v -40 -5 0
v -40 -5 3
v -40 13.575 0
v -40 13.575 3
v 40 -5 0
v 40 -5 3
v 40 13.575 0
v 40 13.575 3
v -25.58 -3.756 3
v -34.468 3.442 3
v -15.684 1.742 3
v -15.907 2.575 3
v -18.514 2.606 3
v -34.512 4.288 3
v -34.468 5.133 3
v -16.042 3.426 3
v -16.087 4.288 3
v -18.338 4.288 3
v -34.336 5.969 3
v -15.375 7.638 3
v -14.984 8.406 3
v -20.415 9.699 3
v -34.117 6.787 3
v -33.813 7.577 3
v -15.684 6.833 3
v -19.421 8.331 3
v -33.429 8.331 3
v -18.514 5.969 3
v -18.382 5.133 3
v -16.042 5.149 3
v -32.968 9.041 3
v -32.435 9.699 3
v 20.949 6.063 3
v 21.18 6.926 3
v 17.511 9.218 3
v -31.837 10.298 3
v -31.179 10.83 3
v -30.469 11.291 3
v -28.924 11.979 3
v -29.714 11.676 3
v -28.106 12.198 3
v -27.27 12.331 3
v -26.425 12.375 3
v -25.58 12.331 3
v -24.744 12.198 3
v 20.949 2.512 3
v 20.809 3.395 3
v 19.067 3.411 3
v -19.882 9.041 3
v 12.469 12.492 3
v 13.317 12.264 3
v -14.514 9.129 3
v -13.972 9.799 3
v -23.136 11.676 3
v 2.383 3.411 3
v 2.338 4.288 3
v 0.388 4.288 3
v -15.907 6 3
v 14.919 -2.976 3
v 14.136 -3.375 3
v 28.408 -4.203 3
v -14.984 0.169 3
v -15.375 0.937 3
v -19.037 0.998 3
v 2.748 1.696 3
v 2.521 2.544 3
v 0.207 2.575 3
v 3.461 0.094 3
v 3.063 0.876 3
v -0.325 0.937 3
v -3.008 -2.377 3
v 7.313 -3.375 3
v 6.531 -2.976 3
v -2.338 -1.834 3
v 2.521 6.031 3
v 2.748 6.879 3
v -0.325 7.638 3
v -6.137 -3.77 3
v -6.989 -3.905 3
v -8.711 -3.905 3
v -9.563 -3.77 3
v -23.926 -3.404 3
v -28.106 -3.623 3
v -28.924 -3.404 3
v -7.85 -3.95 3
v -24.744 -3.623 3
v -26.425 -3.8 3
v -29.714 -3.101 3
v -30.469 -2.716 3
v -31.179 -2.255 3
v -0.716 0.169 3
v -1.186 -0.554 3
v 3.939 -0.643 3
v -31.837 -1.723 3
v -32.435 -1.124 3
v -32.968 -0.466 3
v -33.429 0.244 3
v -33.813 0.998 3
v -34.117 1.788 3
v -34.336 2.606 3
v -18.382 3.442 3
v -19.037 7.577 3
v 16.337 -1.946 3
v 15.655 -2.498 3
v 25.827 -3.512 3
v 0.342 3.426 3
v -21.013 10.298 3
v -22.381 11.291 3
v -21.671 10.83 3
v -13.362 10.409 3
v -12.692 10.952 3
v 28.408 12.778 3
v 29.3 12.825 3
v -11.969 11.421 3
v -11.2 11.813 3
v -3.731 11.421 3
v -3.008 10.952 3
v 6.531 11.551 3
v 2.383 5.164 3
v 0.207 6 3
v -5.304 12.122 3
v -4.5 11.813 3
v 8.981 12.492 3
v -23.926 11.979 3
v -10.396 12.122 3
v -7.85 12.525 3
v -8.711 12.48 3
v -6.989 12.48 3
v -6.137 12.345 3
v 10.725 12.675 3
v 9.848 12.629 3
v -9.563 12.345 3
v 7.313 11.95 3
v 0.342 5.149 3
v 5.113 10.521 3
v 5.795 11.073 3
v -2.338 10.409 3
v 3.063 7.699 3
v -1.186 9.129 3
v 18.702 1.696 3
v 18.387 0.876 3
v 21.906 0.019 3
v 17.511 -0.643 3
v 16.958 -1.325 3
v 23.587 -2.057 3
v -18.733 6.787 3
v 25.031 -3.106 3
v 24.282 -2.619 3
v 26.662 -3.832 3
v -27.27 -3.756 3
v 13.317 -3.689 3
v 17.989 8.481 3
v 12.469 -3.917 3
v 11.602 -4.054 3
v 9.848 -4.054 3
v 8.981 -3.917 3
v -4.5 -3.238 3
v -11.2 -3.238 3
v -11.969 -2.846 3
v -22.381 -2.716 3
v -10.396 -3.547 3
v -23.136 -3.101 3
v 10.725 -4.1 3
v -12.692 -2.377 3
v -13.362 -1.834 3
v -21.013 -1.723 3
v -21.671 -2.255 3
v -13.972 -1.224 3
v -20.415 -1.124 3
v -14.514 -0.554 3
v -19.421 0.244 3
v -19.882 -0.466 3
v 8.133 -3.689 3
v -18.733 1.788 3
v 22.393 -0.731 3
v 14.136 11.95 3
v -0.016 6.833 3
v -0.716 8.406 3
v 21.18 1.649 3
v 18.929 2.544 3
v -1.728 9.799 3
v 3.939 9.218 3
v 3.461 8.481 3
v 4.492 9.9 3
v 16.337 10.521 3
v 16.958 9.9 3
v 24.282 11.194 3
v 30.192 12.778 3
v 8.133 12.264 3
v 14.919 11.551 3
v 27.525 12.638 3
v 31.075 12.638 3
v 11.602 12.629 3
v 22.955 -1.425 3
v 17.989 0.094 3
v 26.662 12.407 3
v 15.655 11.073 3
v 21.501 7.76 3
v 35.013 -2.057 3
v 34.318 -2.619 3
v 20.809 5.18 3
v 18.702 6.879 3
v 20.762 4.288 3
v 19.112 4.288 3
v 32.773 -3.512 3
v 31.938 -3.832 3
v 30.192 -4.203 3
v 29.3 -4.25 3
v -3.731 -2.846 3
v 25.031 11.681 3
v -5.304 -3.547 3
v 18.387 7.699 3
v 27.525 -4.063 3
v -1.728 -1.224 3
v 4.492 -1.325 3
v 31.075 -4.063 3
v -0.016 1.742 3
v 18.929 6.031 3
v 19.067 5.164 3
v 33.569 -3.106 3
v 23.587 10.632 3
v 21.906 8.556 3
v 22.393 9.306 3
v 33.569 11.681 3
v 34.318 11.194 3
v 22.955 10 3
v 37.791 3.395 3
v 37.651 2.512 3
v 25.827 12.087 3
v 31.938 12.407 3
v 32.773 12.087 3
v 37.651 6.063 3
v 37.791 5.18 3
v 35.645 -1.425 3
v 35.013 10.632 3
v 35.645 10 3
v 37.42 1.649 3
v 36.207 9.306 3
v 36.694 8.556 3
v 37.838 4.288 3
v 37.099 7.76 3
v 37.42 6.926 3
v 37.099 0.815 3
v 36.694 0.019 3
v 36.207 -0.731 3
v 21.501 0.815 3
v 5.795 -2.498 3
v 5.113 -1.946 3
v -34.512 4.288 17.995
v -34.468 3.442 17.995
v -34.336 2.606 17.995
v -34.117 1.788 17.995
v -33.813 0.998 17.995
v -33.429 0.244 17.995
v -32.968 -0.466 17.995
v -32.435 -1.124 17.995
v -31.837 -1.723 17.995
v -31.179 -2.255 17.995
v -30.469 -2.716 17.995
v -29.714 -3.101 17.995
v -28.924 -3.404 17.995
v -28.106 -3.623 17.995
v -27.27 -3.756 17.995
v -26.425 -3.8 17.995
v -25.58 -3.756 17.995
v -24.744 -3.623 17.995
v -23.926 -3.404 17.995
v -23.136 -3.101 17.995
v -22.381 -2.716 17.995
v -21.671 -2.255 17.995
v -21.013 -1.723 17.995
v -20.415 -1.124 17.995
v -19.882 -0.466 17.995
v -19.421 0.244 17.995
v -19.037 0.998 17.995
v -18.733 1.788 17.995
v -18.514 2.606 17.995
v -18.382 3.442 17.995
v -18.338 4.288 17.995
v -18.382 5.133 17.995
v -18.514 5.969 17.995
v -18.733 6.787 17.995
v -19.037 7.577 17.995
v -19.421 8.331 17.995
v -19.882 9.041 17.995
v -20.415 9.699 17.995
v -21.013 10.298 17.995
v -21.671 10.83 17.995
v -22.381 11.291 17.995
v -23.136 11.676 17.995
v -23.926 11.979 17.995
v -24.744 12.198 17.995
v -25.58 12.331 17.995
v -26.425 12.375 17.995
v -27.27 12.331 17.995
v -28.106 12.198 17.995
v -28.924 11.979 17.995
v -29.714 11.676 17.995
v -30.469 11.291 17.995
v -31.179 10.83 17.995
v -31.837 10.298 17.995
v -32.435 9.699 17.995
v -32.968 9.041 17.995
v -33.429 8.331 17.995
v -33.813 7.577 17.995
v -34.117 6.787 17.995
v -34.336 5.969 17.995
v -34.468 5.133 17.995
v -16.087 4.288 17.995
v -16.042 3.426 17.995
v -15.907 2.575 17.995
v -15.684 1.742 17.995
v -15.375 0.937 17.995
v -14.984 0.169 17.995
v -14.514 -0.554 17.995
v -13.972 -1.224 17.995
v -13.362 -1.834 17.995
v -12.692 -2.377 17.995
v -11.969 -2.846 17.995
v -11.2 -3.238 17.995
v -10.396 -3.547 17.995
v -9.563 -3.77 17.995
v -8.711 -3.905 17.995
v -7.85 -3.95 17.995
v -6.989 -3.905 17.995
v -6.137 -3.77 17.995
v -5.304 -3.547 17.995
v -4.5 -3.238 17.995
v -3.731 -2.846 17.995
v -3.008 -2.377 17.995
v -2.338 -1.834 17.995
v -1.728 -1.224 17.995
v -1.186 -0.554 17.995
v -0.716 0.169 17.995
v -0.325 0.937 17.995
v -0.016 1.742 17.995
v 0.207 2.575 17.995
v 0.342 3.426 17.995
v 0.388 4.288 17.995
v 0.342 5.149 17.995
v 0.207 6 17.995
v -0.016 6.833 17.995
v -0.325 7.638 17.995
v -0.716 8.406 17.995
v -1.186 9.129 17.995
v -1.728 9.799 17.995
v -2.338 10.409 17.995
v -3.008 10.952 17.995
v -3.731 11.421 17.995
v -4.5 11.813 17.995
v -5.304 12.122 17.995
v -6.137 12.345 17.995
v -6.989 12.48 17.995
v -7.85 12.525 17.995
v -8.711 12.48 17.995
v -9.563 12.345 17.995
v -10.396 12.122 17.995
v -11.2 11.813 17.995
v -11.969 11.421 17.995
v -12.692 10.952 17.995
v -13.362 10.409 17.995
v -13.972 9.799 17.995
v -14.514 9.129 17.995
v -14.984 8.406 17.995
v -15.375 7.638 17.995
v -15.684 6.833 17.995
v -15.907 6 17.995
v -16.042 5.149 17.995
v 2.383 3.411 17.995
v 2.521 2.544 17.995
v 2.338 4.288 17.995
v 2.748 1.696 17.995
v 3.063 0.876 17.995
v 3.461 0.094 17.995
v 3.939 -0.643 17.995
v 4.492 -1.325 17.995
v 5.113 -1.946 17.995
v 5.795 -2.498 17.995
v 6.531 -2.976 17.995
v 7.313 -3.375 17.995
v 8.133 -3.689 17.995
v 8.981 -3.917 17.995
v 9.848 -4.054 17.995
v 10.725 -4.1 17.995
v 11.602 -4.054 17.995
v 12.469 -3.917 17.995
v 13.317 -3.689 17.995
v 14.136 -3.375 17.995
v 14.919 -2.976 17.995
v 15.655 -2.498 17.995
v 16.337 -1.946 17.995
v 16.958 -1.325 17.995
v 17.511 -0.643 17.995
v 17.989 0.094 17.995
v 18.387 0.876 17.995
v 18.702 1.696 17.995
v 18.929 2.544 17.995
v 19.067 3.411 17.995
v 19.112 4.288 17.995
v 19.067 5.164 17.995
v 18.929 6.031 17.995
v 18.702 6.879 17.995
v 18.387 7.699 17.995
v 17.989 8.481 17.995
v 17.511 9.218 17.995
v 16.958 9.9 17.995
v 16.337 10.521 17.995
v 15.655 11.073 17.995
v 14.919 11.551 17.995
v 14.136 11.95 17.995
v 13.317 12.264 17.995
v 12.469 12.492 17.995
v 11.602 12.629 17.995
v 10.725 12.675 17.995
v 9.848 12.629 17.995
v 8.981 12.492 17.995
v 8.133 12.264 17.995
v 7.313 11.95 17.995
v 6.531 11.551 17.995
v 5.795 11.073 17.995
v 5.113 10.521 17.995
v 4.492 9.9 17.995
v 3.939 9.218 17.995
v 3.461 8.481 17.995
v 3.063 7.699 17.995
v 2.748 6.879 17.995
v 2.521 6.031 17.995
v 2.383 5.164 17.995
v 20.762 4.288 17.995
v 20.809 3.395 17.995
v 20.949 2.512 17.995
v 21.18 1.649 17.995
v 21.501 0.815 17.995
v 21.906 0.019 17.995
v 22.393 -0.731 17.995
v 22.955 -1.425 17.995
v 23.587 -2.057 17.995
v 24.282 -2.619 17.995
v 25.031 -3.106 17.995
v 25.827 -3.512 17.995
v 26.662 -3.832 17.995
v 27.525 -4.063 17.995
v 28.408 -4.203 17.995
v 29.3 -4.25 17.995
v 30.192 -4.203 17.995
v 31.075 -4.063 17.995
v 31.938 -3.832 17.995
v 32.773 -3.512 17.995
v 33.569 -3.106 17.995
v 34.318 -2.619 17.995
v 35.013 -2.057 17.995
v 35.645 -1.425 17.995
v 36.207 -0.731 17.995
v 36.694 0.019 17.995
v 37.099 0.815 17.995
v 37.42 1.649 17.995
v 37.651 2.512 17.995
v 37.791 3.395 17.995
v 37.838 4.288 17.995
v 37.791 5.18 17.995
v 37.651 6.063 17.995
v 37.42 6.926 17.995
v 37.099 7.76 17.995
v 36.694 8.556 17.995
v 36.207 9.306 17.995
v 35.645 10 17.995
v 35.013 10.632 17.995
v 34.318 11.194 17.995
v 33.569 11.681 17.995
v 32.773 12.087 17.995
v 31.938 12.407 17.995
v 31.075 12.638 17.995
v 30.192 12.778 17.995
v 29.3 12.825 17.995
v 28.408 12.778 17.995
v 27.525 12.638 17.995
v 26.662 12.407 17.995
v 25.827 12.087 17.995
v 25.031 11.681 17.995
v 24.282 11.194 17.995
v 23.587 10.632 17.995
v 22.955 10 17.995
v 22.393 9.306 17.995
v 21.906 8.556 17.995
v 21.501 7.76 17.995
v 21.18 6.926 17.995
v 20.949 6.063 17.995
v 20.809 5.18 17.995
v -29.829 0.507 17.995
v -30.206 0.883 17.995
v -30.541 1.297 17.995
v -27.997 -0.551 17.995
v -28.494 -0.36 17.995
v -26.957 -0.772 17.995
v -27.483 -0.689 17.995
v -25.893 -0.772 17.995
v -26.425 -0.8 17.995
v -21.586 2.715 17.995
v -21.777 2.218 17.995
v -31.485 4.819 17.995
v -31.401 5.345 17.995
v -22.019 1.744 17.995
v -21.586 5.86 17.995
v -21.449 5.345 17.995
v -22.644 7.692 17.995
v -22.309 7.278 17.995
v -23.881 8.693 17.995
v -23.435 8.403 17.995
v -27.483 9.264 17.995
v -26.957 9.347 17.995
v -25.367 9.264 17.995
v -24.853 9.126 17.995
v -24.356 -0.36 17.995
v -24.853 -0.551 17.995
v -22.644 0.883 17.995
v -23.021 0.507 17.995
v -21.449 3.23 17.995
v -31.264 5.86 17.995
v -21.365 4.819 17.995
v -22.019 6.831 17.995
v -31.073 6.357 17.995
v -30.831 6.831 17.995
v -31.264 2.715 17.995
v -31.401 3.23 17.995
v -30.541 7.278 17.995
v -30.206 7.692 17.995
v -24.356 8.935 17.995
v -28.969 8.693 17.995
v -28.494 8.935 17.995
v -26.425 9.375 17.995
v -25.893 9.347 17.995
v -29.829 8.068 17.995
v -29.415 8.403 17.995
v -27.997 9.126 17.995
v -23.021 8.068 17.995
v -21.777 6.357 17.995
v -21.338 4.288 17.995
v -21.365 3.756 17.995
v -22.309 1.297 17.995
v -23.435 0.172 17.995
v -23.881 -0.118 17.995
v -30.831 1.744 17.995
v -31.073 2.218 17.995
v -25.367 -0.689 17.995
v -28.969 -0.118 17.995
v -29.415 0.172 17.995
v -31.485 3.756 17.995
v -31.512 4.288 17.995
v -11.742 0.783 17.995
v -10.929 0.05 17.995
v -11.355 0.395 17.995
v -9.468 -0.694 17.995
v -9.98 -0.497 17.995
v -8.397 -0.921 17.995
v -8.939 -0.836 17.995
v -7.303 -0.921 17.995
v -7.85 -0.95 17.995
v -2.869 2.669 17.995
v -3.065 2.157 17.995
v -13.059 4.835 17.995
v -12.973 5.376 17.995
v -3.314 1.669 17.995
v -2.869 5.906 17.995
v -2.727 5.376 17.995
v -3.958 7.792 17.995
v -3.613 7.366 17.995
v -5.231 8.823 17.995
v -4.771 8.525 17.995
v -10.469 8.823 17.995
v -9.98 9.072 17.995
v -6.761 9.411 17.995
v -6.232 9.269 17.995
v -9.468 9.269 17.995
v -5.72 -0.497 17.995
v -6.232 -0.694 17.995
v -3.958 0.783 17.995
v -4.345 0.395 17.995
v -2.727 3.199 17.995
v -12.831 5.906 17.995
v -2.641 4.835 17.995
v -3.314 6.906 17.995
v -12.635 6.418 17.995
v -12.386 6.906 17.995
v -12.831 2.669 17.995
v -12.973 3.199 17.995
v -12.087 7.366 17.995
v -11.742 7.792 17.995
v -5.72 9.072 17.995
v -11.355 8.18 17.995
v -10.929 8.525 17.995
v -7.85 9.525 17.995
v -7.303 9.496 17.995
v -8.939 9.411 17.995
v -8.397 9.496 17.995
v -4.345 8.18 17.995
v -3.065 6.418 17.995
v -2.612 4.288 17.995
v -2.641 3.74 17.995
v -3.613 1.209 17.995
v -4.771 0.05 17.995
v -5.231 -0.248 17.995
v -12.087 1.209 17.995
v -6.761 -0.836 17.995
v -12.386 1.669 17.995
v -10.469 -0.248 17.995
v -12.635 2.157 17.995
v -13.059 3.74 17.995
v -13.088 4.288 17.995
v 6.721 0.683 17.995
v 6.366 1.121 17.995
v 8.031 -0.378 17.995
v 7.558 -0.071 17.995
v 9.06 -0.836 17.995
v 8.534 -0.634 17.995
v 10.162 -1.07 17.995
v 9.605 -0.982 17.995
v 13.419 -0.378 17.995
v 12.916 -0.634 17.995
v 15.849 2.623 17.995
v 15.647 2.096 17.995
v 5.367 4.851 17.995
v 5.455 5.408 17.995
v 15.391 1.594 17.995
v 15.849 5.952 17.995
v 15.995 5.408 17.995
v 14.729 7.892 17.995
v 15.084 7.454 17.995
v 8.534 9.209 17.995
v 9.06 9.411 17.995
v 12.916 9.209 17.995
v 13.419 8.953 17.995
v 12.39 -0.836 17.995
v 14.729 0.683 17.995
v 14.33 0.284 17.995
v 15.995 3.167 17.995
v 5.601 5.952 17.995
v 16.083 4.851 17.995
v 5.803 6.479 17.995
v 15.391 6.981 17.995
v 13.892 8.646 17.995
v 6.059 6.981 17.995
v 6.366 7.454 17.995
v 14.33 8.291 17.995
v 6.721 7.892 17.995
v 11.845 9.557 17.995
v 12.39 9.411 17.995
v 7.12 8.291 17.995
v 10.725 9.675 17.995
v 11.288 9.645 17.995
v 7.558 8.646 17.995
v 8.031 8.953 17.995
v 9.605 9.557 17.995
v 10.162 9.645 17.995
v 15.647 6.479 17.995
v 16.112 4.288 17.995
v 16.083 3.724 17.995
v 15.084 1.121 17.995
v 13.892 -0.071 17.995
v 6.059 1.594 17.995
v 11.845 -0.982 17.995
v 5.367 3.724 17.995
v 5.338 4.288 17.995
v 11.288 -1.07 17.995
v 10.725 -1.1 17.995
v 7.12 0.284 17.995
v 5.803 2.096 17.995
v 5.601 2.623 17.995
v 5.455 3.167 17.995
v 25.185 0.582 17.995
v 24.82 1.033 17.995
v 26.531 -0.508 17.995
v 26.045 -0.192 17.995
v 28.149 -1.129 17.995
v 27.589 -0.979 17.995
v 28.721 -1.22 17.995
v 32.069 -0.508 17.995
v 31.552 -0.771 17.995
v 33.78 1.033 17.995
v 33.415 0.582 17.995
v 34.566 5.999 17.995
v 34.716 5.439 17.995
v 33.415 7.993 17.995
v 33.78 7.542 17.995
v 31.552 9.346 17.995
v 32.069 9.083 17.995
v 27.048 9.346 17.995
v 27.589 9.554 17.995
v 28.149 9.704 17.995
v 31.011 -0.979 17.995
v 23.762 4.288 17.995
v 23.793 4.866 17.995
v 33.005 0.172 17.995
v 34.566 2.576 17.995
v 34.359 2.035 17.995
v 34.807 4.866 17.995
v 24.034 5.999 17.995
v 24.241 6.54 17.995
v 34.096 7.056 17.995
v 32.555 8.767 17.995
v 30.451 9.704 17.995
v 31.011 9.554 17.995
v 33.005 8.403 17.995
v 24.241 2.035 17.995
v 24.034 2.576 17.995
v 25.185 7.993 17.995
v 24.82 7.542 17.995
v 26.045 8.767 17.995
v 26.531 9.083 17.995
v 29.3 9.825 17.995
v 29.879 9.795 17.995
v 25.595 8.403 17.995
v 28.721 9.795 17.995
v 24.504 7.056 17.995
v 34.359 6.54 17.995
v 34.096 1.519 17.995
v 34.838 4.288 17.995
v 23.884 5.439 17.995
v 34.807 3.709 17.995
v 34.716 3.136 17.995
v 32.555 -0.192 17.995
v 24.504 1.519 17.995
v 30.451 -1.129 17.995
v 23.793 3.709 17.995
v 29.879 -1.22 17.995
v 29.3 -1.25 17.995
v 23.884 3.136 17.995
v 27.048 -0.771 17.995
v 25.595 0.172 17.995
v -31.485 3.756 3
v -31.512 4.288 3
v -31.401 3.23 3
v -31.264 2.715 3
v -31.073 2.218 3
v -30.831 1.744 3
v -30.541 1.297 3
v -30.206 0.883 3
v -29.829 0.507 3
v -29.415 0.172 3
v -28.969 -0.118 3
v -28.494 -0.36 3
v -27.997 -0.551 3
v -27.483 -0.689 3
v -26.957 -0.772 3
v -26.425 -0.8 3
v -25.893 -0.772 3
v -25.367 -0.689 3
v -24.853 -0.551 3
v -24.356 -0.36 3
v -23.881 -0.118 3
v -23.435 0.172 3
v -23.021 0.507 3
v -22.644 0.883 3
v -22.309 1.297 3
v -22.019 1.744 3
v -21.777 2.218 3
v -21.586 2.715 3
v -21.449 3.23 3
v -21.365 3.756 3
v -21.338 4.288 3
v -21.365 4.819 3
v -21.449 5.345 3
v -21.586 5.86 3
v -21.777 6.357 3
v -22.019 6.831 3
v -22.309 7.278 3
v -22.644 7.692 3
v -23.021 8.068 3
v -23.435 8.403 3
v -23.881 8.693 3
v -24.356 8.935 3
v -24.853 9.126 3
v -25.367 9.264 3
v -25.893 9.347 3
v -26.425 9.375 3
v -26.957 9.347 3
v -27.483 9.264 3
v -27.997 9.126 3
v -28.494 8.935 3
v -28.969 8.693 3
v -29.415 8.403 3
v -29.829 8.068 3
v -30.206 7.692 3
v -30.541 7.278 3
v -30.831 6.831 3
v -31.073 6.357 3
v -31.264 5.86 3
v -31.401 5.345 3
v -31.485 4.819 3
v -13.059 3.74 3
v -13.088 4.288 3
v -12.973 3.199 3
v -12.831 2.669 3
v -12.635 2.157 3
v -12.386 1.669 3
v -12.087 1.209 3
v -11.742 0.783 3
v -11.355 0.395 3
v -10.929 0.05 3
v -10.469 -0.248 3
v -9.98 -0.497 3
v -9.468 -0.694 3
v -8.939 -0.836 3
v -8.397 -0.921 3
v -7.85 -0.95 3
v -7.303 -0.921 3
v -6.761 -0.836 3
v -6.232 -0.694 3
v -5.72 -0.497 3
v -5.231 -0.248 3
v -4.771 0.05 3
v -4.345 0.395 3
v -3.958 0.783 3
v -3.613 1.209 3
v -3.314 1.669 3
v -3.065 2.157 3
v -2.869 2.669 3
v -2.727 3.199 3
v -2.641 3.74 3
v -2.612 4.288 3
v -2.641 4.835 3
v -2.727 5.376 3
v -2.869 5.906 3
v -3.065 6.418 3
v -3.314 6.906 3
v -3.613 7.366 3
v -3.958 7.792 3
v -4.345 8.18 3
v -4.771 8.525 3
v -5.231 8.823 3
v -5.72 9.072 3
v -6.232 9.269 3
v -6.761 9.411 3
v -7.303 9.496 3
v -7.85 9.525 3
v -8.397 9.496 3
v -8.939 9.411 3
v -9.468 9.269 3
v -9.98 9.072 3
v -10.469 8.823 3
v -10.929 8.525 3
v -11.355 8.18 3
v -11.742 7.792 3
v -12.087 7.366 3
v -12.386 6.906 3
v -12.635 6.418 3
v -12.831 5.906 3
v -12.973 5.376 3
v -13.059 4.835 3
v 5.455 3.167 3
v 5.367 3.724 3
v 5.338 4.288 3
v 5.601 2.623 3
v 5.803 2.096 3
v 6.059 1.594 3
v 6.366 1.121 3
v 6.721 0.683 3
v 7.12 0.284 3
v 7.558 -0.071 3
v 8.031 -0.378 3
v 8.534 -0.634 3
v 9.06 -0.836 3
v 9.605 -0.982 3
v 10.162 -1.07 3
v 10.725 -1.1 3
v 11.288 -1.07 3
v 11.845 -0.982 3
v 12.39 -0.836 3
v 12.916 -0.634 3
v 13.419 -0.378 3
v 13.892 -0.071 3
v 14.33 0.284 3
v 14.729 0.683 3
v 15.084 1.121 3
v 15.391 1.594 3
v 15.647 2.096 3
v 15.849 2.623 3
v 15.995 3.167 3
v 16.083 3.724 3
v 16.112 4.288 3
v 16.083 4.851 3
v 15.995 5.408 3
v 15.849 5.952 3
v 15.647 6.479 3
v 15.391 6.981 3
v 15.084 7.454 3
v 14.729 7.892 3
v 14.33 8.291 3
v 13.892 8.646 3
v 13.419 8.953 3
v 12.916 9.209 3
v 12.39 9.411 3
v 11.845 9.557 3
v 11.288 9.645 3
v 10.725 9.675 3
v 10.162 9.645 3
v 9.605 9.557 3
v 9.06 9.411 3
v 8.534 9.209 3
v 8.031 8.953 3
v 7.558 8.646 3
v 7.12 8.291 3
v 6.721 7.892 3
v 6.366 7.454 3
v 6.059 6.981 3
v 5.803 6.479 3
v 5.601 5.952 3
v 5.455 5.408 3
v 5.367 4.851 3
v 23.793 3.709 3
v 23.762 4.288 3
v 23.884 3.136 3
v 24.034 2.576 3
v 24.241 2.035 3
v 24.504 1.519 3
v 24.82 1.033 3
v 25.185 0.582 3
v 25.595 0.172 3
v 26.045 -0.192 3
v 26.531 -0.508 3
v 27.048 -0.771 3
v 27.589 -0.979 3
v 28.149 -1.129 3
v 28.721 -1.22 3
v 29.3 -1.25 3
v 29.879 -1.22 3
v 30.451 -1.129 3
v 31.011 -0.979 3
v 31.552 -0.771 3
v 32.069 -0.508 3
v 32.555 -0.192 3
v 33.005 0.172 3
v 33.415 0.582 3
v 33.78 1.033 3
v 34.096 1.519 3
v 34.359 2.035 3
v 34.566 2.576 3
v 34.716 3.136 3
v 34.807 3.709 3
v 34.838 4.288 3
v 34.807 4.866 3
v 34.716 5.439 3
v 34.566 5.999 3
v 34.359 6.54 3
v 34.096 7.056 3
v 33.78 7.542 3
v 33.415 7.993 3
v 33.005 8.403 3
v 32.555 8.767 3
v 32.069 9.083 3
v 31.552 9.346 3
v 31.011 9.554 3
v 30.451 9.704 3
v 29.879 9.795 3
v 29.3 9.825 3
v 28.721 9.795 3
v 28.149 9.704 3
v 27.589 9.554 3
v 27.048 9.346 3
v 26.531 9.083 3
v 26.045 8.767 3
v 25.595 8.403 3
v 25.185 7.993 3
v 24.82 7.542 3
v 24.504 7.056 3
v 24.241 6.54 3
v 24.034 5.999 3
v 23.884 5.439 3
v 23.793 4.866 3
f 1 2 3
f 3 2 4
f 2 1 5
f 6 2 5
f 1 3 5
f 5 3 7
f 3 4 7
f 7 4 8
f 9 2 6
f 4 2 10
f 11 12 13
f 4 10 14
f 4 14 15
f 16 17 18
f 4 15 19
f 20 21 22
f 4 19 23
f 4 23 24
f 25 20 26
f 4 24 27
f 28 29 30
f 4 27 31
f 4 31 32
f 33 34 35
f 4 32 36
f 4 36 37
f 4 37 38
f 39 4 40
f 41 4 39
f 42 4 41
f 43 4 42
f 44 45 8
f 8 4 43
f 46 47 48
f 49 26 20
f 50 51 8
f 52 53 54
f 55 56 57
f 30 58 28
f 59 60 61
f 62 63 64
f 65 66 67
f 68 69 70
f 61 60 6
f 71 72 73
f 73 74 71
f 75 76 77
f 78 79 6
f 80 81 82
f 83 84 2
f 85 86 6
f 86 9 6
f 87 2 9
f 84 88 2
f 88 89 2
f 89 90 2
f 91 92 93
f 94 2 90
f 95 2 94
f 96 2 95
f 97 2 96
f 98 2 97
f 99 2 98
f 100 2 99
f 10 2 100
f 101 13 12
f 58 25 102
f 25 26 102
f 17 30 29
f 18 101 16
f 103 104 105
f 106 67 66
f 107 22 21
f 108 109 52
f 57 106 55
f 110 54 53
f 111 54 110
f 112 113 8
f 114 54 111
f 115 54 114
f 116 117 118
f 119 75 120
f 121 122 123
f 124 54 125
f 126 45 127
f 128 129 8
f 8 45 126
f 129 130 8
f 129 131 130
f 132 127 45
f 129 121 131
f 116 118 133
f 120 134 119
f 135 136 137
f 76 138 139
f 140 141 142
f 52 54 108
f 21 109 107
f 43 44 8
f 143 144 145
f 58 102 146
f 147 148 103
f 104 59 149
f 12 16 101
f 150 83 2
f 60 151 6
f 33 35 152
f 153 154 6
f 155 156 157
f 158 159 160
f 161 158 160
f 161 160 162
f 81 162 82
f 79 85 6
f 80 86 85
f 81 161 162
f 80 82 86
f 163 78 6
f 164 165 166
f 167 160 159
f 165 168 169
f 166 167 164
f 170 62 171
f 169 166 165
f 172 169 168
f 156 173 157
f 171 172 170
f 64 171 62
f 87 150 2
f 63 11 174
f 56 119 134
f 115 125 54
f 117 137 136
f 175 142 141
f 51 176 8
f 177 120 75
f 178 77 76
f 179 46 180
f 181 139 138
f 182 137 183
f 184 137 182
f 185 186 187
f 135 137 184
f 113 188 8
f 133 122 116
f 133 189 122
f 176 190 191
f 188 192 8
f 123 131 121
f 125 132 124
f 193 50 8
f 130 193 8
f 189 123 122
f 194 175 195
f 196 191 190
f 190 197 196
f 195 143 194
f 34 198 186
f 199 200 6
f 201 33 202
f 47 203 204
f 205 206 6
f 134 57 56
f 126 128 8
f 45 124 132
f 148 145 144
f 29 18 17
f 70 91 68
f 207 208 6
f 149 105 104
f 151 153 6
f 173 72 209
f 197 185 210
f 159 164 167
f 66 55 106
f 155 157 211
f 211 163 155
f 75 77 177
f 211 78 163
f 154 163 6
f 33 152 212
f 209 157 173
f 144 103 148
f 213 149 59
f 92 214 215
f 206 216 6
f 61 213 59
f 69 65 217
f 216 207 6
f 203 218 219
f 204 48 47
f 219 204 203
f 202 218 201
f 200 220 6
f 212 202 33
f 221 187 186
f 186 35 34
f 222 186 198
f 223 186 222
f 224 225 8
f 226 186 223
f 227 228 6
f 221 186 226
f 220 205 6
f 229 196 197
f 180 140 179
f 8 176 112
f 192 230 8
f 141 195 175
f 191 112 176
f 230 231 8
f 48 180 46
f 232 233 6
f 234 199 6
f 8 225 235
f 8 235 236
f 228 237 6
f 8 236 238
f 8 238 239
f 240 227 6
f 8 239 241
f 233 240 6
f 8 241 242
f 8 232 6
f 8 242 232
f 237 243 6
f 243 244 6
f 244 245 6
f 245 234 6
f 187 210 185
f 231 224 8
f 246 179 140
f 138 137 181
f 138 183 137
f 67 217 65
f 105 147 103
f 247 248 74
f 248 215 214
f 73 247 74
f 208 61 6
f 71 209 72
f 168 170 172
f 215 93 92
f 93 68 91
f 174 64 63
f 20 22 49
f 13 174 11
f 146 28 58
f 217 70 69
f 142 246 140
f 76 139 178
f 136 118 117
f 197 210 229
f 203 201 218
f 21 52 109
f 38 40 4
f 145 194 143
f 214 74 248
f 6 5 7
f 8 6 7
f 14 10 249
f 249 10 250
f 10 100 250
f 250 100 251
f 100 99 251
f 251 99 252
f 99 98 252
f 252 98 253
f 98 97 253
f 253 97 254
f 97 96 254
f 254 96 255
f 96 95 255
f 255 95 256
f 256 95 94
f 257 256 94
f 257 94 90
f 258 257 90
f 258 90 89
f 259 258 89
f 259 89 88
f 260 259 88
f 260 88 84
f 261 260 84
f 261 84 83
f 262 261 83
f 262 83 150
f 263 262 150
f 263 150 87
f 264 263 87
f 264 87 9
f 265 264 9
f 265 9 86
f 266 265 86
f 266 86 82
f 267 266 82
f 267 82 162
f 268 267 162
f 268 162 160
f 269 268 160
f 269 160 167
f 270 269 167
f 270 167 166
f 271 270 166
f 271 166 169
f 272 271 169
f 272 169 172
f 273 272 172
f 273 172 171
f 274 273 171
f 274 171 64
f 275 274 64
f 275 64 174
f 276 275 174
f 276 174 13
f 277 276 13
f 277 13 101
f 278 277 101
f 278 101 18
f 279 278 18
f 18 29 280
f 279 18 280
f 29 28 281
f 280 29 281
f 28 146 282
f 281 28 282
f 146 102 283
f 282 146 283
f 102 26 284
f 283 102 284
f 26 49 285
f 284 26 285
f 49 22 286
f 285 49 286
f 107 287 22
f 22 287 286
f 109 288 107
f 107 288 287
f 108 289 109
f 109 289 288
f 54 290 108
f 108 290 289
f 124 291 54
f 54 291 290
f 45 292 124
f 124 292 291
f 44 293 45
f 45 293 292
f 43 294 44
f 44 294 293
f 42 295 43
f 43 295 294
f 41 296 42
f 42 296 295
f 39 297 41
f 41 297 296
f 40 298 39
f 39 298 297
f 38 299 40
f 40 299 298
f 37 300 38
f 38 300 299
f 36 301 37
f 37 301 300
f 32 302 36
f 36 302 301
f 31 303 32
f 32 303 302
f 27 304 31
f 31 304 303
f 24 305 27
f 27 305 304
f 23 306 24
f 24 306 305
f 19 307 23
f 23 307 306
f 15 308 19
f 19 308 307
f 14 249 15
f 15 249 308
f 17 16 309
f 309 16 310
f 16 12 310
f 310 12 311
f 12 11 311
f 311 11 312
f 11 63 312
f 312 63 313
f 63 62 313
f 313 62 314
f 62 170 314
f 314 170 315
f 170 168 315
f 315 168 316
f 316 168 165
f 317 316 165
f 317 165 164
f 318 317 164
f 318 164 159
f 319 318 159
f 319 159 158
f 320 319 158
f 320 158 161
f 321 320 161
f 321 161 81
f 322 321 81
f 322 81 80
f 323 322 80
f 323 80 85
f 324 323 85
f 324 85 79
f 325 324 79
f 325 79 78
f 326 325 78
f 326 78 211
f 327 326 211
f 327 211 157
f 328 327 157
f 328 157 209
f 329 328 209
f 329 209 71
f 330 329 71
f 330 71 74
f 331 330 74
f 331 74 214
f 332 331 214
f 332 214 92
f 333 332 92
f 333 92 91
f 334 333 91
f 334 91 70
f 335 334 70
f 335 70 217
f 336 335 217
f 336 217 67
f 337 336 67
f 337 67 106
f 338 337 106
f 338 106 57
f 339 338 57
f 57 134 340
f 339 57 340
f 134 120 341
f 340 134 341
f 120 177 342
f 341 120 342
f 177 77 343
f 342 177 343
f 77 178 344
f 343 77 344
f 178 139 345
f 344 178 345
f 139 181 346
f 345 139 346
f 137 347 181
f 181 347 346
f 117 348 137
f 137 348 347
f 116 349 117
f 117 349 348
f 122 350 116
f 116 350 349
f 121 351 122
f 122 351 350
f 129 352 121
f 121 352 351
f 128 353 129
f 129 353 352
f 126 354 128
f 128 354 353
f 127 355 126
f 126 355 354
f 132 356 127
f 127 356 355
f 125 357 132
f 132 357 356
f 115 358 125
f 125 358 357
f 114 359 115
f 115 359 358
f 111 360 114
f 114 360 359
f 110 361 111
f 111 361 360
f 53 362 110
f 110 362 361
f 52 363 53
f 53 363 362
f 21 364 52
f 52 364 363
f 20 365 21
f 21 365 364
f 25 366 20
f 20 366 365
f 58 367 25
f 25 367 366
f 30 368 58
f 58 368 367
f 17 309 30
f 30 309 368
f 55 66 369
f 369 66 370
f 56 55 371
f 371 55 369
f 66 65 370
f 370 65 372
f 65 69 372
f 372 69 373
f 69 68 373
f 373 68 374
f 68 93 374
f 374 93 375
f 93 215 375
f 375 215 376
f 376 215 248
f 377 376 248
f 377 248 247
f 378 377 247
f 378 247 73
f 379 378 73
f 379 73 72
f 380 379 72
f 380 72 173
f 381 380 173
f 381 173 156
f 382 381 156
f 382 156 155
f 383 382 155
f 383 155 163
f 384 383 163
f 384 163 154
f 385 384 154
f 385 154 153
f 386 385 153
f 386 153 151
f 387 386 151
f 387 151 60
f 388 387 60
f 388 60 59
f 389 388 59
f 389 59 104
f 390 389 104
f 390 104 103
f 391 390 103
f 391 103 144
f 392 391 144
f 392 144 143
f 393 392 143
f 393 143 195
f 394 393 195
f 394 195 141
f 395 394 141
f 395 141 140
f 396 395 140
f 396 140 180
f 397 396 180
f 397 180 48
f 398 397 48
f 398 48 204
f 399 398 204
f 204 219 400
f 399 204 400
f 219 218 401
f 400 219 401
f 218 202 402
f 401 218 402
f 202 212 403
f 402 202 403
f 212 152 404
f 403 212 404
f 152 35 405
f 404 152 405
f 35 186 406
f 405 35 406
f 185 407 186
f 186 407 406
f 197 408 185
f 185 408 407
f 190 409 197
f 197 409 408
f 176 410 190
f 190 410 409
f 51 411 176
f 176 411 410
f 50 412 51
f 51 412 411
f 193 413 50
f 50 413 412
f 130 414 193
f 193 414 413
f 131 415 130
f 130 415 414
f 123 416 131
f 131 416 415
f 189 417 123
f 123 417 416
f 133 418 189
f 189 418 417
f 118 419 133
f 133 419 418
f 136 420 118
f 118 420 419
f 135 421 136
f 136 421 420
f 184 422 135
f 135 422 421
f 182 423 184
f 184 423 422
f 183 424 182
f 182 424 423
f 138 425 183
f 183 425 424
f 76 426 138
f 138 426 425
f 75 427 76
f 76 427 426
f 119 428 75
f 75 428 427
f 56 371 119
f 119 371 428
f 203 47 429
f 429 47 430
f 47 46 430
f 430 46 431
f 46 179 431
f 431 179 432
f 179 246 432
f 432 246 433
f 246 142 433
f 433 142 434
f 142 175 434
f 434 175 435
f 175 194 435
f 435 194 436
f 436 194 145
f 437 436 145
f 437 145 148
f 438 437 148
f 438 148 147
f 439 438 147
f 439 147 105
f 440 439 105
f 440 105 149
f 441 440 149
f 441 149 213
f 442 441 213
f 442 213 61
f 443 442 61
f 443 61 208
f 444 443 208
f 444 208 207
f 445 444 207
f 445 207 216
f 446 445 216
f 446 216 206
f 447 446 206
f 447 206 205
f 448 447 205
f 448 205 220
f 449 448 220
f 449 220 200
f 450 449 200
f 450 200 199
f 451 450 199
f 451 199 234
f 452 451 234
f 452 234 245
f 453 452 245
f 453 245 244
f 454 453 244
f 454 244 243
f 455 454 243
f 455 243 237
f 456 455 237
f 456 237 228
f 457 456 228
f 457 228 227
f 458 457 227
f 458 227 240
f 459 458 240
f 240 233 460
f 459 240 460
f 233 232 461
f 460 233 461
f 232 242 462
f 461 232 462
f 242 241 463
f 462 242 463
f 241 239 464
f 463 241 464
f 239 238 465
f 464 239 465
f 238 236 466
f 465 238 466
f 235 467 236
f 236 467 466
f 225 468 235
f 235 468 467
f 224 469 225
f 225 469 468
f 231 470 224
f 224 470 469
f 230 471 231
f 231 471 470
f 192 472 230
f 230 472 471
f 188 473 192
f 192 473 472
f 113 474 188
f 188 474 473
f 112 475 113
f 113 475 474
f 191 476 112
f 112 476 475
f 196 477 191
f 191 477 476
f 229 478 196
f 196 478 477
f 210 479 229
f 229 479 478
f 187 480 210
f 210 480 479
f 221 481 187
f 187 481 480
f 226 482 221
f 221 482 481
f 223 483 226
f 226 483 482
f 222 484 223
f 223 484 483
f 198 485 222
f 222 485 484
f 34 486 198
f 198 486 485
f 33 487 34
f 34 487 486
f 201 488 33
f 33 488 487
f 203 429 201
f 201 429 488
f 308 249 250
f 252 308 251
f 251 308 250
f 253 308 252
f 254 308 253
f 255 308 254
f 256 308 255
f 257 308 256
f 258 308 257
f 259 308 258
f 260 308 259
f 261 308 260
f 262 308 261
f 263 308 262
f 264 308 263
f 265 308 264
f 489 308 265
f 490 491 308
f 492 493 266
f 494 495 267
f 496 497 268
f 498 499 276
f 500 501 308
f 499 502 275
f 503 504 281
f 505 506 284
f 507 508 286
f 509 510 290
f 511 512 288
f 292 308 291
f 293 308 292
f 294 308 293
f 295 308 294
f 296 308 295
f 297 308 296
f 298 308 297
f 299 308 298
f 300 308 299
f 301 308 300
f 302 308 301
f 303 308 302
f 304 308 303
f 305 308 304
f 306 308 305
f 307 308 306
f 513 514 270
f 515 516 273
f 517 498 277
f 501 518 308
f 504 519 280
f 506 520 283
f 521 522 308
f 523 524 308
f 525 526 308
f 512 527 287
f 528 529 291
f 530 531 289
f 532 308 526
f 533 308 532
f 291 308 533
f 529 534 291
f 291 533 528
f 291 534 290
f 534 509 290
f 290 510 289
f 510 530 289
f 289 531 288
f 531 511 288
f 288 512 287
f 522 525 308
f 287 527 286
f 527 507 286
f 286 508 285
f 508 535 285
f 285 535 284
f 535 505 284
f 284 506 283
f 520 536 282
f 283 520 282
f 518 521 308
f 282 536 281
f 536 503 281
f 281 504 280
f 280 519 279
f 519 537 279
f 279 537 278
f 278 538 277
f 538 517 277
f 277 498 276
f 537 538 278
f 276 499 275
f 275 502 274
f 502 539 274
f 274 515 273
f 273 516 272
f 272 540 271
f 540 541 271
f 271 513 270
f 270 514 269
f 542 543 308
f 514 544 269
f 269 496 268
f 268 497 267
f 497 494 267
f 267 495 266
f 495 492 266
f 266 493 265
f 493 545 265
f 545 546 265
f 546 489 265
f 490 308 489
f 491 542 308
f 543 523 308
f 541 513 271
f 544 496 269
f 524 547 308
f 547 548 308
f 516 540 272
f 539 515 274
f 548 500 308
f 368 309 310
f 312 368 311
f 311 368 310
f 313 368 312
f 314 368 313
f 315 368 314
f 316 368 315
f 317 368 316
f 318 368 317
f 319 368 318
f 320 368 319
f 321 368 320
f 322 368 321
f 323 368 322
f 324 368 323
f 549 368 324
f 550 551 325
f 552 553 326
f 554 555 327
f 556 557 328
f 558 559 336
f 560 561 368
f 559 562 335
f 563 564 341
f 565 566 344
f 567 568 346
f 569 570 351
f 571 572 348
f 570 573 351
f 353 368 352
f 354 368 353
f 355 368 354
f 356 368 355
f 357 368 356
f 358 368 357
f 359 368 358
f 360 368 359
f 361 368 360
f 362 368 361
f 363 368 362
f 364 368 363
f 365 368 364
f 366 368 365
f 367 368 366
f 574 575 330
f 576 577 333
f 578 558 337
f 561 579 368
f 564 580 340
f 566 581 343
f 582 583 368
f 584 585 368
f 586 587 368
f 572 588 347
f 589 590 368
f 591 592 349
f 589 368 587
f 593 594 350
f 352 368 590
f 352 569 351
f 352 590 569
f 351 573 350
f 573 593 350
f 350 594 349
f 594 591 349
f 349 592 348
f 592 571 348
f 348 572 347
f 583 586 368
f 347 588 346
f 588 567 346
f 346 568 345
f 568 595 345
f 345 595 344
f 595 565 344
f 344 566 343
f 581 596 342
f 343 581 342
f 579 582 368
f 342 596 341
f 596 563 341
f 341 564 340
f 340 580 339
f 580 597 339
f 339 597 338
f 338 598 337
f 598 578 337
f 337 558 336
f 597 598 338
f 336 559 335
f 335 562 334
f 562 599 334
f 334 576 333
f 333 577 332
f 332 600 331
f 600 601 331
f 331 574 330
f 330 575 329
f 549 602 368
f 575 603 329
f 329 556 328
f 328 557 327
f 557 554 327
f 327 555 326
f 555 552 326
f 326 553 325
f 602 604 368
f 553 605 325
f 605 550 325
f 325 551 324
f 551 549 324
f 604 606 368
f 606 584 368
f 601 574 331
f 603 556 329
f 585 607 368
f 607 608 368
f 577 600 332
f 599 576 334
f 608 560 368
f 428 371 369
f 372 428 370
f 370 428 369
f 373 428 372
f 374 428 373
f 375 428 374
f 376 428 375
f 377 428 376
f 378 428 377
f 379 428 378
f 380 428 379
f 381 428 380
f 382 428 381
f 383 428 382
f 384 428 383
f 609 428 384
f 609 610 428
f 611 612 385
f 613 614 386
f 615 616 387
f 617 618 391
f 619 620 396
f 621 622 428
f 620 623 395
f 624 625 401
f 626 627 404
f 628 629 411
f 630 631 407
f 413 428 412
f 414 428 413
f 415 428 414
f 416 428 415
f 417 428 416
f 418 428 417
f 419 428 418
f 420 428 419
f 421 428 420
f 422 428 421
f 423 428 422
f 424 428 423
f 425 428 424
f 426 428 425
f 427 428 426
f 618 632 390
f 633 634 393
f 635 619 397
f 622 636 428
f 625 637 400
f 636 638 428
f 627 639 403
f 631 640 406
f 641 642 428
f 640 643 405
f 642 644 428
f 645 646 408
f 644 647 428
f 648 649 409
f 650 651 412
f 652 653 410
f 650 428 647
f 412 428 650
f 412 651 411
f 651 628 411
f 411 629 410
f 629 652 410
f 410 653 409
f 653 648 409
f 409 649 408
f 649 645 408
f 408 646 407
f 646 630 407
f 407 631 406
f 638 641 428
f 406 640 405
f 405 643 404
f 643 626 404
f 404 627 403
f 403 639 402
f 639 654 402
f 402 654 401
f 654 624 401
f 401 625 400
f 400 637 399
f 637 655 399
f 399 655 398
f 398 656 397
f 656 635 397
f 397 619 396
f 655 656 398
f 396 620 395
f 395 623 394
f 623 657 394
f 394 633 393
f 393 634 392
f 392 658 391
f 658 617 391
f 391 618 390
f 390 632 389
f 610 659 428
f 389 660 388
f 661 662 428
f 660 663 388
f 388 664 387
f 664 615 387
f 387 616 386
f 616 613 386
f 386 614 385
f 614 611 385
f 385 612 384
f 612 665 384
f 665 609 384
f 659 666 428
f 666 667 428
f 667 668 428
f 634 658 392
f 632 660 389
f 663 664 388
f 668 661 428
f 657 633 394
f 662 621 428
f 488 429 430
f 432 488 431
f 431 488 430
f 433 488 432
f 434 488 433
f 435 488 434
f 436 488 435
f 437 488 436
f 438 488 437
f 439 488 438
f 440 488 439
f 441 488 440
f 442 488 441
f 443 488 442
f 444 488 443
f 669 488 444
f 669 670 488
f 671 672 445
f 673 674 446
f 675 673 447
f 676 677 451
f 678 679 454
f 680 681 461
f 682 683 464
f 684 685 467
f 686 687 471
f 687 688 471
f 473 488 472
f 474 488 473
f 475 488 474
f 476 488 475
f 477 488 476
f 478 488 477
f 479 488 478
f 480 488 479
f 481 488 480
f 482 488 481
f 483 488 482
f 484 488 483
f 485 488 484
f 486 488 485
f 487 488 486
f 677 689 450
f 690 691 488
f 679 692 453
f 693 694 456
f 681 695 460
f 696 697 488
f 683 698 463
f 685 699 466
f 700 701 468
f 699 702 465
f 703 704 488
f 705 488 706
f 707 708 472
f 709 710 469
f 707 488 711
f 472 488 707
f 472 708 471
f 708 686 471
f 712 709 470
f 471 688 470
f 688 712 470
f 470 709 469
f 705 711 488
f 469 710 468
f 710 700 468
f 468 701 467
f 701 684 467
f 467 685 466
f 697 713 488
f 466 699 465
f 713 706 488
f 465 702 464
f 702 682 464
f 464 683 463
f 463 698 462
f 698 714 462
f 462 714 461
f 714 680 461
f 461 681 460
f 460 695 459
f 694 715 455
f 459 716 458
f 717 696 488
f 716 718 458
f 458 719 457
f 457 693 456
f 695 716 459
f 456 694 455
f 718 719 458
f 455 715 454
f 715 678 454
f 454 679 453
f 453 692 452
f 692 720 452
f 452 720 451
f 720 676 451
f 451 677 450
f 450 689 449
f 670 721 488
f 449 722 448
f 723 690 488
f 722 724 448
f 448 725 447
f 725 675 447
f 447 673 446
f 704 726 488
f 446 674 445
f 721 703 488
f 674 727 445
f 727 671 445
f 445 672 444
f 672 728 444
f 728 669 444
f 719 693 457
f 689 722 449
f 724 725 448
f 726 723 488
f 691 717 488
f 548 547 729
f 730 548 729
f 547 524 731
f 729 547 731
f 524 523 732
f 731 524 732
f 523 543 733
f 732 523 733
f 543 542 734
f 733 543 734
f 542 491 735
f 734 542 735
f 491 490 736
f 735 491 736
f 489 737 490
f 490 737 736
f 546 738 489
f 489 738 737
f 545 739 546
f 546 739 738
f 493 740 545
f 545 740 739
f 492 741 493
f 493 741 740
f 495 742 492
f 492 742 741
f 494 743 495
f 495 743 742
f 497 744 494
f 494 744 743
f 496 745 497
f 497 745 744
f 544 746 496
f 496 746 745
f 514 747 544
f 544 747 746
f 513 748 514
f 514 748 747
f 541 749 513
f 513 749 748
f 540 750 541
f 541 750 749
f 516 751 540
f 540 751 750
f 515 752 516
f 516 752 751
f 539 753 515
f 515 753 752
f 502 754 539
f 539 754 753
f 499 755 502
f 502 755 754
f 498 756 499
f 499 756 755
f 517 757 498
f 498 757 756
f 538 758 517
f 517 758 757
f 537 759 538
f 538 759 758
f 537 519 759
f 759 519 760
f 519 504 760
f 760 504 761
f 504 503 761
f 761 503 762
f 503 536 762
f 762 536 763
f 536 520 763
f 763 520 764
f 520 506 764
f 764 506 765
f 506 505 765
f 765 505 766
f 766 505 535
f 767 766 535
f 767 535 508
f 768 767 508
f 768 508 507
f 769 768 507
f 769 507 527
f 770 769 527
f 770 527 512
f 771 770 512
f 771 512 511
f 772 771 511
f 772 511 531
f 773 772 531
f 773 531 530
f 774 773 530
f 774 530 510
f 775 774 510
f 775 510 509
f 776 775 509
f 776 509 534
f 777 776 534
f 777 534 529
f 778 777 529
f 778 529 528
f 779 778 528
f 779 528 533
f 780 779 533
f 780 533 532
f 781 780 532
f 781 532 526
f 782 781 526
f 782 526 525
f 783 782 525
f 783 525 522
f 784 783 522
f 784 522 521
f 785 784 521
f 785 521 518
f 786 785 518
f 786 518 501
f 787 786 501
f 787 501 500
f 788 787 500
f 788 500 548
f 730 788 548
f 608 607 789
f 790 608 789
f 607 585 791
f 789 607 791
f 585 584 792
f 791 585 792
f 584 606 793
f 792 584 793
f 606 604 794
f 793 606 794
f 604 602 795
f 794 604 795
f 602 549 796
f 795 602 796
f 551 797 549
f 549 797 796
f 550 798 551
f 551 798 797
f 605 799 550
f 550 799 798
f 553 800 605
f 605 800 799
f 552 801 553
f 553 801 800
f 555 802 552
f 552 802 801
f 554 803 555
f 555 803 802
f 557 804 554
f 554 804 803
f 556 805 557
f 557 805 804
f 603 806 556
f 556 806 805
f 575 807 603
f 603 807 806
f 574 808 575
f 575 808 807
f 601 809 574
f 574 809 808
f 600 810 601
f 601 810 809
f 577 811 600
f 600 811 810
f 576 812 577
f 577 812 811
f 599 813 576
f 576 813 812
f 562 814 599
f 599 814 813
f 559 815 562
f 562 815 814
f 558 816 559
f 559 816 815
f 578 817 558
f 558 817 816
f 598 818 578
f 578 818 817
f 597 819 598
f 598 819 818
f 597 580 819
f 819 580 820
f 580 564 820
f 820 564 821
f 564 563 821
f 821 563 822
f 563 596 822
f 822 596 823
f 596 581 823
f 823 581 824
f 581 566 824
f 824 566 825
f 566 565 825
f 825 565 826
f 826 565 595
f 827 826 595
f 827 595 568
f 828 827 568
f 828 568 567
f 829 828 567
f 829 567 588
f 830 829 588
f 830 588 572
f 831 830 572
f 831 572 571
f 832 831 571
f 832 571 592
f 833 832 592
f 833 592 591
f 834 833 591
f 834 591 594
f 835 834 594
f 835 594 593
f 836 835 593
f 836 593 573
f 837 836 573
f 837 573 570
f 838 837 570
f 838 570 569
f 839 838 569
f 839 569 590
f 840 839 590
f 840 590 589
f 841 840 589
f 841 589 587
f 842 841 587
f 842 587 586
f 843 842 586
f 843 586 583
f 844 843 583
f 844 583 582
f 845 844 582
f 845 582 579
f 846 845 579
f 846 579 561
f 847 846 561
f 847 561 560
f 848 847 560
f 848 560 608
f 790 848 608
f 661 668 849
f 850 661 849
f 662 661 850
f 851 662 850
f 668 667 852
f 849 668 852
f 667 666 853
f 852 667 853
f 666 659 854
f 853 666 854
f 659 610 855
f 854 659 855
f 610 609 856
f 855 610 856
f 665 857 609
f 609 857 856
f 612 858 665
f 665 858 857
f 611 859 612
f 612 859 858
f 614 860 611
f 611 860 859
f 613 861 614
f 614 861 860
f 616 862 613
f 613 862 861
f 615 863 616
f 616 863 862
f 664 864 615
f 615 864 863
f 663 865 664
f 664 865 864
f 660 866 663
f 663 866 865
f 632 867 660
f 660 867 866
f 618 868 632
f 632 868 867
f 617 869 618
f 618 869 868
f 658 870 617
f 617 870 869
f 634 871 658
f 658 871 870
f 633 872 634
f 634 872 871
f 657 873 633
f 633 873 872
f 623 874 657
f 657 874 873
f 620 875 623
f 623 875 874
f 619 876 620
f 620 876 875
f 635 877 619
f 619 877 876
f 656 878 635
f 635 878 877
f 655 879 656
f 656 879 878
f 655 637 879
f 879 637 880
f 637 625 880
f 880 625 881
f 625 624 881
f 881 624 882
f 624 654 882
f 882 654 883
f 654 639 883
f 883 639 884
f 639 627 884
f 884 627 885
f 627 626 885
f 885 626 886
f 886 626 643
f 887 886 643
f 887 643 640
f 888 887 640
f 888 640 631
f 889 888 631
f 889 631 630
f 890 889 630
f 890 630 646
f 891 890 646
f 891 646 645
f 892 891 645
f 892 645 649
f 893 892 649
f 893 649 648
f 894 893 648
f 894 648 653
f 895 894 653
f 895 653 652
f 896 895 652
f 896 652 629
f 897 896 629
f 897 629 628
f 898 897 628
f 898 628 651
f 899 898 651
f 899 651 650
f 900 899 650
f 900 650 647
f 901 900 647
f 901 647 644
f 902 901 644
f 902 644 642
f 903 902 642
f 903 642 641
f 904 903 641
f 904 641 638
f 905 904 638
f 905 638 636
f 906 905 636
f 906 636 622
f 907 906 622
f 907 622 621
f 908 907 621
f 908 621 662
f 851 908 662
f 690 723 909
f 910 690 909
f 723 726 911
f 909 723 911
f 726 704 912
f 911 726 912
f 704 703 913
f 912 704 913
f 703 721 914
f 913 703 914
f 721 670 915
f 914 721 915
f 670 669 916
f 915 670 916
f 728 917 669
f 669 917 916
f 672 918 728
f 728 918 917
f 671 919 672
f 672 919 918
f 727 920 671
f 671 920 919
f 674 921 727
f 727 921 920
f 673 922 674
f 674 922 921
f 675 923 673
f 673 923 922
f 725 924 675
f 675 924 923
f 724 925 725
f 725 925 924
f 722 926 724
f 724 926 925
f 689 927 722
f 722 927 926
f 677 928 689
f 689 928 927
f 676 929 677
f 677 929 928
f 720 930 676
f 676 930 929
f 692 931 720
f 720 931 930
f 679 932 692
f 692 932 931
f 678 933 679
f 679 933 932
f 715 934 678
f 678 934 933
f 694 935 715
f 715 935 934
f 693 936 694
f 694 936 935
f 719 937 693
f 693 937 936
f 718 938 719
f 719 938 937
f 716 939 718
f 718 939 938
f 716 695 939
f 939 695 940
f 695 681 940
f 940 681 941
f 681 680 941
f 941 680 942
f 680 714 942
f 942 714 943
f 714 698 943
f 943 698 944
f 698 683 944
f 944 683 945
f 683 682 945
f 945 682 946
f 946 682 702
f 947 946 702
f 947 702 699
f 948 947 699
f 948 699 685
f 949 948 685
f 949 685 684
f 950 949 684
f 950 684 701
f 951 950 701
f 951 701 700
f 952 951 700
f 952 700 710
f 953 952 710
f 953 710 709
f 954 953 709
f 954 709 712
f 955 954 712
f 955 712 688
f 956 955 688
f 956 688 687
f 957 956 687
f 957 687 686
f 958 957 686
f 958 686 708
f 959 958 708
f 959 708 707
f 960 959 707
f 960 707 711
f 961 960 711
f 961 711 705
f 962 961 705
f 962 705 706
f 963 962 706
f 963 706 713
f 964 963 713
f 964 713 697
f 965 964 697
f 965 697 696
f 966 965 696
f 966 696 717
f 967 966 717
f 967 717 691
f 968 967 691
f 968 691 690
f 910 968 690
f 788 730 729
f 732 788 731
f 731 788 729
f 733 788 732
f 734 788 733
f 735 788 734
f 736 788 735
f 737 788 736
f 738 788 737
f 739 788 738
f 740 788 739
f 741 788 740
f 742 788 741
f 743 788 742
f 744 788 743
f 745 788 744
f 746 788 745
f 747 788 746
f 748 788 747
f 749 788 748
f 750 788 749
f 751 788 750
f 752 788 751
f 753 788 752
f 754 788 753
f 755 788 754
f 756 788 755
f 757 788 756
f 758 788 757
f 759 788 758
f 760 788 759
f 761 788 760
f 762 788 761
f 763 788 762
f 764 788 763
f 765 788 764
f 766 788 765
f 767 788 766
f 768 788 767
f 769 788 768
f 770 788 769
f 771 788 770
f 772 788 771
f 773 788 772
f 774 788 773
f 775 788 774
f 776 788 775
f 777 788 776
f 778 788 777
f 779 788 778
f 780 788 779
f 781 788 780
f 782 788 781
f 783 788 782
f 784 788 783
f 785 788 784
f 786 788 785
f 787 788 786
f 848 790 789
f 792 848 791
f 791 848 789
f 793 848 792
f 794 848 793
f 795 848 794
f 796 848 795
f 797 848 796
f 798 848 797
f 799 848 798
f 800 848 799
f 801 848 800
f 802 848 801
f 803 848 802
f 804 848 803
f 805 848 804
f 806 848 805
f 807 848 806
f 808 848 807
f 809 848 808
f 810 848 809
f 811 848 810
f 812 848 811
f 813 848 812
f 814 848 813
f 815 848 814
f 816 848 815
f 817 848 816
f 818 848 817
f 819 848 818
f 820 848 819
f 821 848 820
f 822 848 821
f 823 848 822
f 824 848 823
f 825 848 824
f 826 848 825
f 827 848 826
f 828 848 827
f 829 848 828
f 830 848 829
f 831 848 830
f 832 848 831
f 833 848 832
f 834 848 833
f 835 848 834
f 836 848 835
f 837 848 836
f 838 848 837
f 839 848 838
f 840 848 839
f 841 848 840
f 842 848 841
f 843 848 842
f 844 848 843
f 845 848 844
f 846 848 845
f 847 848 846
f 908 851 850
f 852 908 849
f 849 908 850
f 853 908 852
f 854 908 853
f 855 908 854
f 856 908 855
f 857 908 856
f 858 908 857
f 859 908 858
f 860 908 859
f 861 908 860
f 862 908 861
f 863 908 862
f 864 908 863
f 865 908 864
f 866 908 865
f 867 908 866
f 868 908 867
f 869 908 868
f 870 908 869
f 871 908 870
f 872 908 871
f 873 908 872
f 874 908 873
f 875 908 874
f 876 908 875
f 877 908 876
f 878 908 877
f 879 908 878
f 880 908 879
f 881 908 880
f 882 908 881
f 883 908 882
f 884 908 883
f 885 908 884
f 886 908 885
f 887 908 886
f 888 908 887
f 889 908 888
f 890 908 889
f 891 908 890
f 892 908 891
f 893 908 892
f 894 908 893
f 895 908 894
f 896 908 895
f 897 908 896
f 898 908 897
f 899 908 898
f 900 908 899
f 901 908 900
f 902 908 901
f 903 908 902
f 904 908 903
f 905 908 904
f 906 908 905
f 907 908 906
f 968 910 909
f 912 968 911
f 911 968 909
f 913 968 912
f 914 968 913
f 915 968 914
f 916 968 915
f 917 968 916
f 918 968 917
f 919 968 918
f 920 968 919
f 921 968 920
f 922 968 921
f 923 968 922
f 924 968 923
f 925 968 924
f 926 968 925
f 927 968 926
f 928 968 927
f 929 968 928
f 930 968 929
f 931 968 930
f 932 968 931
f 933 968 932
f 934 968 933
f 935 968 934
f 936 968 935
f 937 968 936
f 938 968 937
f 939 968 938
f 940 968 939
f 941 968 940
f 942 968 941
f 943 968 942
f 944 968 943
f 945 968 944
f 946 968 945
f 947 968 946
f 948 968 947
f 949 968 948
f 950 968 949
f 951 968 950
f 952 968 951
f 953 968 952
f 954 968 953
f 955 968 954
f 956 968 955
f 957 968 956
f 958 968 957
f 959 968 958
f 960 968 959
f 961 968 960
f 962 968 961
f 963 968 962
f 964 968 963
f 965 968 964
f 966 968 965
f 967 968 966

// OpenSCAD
// file: mcad/units.scad
/*
 * Basic units.
 *
 * Originally by Hans Häggström, 2010.
 * Dual licenced under Creative Commons Attribution-Share Alike 3.0 and LGPL2 or later
 */


mm = 1;
cm = 10 * mm;
dm = 100 * mm;
m = 1000 * mm;

inch = 25.4 * mm;

X = [1, 0, 0];
Y = [0, 1, 0];
Z = [0, 0, 1];

M3 = 3*mm;
M4 = 4*mm;
M5 = 5*mm;
M6 = 6*mm;
M8 = 8*mm;


// When a small distance is needed to overlap shapes for boolean cutting, etc.
epsilon = 0.01*mm;

phi=0.5*(sqrt(5) + 1 );
// file: strut_dummies.scad
use <Libs.scad>
include <ss_parms.scad>

peg_width = bs_width / 4;

bs_dummy();

module es_dummy(){
	union(){
		cube([es_length, es_width, es_height + 0.05]);
		translate([es_length, es_width - 6.75, es_height/2])
			dovetail(male = false, height = es_height + 0.05);
	}
}

module bs_dummy(tol = bv_tolerance){
	union(){
		// body
		translate([-bs_sink, 0, 0]) 
			cube(size=[bs_length + bs_sink, bs_width+tol, bs_height+tol]);
		// mounting pegs
		translate([-bv_width-0.1, 0, 0]) 
			cube(size=[bv_width - bs_sink +0.5, peg_width+tol, bs_height+tol]);
		translate([-bv_width-0.1, bs_width - peg_width , 0]) 
			cube(size=[bv_width - bs_sink + 0.5, peg_width+tol, bs_height+tol]);
		// support cube
		translate([-bs_sink, (bs_width-peg_width)  / 2, bs_height- 0.1])
			cube(size=[bs_sink + 0.5 * bs_td_space, peg_width+tol, bs_height+tol]);
	}
}

module rod_mount(tol = 0.1){
	difference(){
		cylinder(r=tol + tv_rod_diameter / 2 + tv_rod_wall, h=tv_rod_length+ 0.01, center=true, $fn=resolution(ys_rod_diameter));  
		cylinder(r=tol + tv_rod_diameter / 2, h=tv_rod_length + 0.1, center=true, $fn=resolution(ys_rod_diameter));  
	}
}
// file: ss_parms.scad
/*
 * Parameters for SugarSnap RepRap 
 *  Copyright (C) 2011  Adam Milner
 *
 *  This program is free software; you can redistribute it and/or modify
 *  it under the terms of the GNU General Public License as published by
 *  the Free Software Foundation; either version 2 of the License, or
 *  (at your option) any later version.
 *
 *  This program is distributed in the hope that it will be useful,
 *  but WITHOUT ANY WARRANTY; without even the implied warranty of
 *  MERCHANTABILITY or FITNESS FOR A PARTICULAR PURPOSE.  See the
 *  GNU General Public License for more details.
 *
 *  You should have received a copy of the GNU General Public License
 *  along with this program; if not, write to the Free Software
 *  Foundation, Inc., 59 Temple Place, Suite 330, Boston, MA  02111-1307  USA
 *
*/

include <mcad/units.scad>

/*** End Struts ***/
es_length = 80; // strut body length
es_width = 30;	// strut body width
es_height = 7; // strut body thickness
es_teardrops = true; // include teardrop holes
es_td_radius = 9; // teardrop hole radius
es_num_td = 2;	// number of teardrops
es_td_space = 12; // space between teardrops 

/*** Base Struts ***/
bs_length = 50; // strut body length
bs_width = 30;	// strut body width
bs_height = 7; // strut body thickness
bs_teardrops = true; // include teardrop holes
bs_td_radius = 9; // teardrop hole radius
bs_num_td = 1;	// number of teardrops
bs_td_space = 12; // space between teardrops 

/*** Y Rod Support Struts ***/
ys_length = 30; // strut body length
ys_width = bs_width;	// strut body width
ys_height = bs_height; // strut body thickness
ys_foot = true;	// use a foot on the y rod support
ys_foot_width = 8;	// foot width
ys_rod_diameter = (3/8) * inch + 0.05; // outer diameter of the y-rod, plus some shrinkage
ys_rod_wall = 3;
ys_rod_length = 15;
ys_rod_tol = 0.1;
ys_rod_sink = ys_height / 2; //rod countersink into the body 

/*** Y Motor Strut Struts ***/
ym_length = 100; // strut body length
ym_width = bs_width;	// strut body width
ym_height = bs_height ; // strut body thickness

/*** Bottom Vertex ***/
bv_width = es_height; // vertex thickness
bv_radius = 31; // radius of the vertex
bs_sink = es_height/3; // how far to countersink the y supporting base struts into the vertex
bs_outset = 10; // outset of the y supporting base struts from the center of the vertex
bv_tolerance = 0.45; // shrinkage tolerence for the strut slots

/*** Top Vertex ***/
tv_rod_diameter = ys_rod_diameter; // outer diameter of the x-rod, plus some shrinkage
tv_rod_wall = ys_rod_wall;
tv_rod_length = ys_rod_length;
tv_rod_spacing = 35; // space between the inside edges of the x-rods
tv_rod_lift = 0; // center of x rods above center of vertex semi-circle
tv_top_height = tv_rod_diameter/2 + tv_rod_wall + tv_rod_lift + 5; // vertex body height above bottom half circle
tv_rod_sink = es_height/2;
tv_rod_tol = ys_rod_tol;

/*** X Motor Mount ***/
x_dt_space = 20; // spacing between the X motor mount dovetails
// main file
include <ss_parms.scad>
use <strut_dummies.scad>

libEcho = false;

translate([-40,-5,0])
	rod_test();


preview = false;

if (preview) 
	ShowPegGrid(1.0);
	
module ShowPegGrid(Size) {
 
 for (x=[-5:5])
  for (y=[-5:5])
   translate([x*10,y*10,Size/2])
    cube(Size,center=true);
 
}

module rod_test(tol = 0.5){
	union(){
		//main body
		cube(size=[80, ys_rod_diameter + ys_rod_wall + 6, 3]);
		// base strut mounting tests
		for ( i = [1 : 4 ]) {
			translate([ -5 + i * (ys_rod_diameter + 2 *ys_rod_wall + 3), (ys_rod_diameter + ys_rod_wall + 6)/2, ys_rod_length/2 + 2.99]) 
					rod_mount(tol = 0.15 * (i+1));
		}
	}
}
